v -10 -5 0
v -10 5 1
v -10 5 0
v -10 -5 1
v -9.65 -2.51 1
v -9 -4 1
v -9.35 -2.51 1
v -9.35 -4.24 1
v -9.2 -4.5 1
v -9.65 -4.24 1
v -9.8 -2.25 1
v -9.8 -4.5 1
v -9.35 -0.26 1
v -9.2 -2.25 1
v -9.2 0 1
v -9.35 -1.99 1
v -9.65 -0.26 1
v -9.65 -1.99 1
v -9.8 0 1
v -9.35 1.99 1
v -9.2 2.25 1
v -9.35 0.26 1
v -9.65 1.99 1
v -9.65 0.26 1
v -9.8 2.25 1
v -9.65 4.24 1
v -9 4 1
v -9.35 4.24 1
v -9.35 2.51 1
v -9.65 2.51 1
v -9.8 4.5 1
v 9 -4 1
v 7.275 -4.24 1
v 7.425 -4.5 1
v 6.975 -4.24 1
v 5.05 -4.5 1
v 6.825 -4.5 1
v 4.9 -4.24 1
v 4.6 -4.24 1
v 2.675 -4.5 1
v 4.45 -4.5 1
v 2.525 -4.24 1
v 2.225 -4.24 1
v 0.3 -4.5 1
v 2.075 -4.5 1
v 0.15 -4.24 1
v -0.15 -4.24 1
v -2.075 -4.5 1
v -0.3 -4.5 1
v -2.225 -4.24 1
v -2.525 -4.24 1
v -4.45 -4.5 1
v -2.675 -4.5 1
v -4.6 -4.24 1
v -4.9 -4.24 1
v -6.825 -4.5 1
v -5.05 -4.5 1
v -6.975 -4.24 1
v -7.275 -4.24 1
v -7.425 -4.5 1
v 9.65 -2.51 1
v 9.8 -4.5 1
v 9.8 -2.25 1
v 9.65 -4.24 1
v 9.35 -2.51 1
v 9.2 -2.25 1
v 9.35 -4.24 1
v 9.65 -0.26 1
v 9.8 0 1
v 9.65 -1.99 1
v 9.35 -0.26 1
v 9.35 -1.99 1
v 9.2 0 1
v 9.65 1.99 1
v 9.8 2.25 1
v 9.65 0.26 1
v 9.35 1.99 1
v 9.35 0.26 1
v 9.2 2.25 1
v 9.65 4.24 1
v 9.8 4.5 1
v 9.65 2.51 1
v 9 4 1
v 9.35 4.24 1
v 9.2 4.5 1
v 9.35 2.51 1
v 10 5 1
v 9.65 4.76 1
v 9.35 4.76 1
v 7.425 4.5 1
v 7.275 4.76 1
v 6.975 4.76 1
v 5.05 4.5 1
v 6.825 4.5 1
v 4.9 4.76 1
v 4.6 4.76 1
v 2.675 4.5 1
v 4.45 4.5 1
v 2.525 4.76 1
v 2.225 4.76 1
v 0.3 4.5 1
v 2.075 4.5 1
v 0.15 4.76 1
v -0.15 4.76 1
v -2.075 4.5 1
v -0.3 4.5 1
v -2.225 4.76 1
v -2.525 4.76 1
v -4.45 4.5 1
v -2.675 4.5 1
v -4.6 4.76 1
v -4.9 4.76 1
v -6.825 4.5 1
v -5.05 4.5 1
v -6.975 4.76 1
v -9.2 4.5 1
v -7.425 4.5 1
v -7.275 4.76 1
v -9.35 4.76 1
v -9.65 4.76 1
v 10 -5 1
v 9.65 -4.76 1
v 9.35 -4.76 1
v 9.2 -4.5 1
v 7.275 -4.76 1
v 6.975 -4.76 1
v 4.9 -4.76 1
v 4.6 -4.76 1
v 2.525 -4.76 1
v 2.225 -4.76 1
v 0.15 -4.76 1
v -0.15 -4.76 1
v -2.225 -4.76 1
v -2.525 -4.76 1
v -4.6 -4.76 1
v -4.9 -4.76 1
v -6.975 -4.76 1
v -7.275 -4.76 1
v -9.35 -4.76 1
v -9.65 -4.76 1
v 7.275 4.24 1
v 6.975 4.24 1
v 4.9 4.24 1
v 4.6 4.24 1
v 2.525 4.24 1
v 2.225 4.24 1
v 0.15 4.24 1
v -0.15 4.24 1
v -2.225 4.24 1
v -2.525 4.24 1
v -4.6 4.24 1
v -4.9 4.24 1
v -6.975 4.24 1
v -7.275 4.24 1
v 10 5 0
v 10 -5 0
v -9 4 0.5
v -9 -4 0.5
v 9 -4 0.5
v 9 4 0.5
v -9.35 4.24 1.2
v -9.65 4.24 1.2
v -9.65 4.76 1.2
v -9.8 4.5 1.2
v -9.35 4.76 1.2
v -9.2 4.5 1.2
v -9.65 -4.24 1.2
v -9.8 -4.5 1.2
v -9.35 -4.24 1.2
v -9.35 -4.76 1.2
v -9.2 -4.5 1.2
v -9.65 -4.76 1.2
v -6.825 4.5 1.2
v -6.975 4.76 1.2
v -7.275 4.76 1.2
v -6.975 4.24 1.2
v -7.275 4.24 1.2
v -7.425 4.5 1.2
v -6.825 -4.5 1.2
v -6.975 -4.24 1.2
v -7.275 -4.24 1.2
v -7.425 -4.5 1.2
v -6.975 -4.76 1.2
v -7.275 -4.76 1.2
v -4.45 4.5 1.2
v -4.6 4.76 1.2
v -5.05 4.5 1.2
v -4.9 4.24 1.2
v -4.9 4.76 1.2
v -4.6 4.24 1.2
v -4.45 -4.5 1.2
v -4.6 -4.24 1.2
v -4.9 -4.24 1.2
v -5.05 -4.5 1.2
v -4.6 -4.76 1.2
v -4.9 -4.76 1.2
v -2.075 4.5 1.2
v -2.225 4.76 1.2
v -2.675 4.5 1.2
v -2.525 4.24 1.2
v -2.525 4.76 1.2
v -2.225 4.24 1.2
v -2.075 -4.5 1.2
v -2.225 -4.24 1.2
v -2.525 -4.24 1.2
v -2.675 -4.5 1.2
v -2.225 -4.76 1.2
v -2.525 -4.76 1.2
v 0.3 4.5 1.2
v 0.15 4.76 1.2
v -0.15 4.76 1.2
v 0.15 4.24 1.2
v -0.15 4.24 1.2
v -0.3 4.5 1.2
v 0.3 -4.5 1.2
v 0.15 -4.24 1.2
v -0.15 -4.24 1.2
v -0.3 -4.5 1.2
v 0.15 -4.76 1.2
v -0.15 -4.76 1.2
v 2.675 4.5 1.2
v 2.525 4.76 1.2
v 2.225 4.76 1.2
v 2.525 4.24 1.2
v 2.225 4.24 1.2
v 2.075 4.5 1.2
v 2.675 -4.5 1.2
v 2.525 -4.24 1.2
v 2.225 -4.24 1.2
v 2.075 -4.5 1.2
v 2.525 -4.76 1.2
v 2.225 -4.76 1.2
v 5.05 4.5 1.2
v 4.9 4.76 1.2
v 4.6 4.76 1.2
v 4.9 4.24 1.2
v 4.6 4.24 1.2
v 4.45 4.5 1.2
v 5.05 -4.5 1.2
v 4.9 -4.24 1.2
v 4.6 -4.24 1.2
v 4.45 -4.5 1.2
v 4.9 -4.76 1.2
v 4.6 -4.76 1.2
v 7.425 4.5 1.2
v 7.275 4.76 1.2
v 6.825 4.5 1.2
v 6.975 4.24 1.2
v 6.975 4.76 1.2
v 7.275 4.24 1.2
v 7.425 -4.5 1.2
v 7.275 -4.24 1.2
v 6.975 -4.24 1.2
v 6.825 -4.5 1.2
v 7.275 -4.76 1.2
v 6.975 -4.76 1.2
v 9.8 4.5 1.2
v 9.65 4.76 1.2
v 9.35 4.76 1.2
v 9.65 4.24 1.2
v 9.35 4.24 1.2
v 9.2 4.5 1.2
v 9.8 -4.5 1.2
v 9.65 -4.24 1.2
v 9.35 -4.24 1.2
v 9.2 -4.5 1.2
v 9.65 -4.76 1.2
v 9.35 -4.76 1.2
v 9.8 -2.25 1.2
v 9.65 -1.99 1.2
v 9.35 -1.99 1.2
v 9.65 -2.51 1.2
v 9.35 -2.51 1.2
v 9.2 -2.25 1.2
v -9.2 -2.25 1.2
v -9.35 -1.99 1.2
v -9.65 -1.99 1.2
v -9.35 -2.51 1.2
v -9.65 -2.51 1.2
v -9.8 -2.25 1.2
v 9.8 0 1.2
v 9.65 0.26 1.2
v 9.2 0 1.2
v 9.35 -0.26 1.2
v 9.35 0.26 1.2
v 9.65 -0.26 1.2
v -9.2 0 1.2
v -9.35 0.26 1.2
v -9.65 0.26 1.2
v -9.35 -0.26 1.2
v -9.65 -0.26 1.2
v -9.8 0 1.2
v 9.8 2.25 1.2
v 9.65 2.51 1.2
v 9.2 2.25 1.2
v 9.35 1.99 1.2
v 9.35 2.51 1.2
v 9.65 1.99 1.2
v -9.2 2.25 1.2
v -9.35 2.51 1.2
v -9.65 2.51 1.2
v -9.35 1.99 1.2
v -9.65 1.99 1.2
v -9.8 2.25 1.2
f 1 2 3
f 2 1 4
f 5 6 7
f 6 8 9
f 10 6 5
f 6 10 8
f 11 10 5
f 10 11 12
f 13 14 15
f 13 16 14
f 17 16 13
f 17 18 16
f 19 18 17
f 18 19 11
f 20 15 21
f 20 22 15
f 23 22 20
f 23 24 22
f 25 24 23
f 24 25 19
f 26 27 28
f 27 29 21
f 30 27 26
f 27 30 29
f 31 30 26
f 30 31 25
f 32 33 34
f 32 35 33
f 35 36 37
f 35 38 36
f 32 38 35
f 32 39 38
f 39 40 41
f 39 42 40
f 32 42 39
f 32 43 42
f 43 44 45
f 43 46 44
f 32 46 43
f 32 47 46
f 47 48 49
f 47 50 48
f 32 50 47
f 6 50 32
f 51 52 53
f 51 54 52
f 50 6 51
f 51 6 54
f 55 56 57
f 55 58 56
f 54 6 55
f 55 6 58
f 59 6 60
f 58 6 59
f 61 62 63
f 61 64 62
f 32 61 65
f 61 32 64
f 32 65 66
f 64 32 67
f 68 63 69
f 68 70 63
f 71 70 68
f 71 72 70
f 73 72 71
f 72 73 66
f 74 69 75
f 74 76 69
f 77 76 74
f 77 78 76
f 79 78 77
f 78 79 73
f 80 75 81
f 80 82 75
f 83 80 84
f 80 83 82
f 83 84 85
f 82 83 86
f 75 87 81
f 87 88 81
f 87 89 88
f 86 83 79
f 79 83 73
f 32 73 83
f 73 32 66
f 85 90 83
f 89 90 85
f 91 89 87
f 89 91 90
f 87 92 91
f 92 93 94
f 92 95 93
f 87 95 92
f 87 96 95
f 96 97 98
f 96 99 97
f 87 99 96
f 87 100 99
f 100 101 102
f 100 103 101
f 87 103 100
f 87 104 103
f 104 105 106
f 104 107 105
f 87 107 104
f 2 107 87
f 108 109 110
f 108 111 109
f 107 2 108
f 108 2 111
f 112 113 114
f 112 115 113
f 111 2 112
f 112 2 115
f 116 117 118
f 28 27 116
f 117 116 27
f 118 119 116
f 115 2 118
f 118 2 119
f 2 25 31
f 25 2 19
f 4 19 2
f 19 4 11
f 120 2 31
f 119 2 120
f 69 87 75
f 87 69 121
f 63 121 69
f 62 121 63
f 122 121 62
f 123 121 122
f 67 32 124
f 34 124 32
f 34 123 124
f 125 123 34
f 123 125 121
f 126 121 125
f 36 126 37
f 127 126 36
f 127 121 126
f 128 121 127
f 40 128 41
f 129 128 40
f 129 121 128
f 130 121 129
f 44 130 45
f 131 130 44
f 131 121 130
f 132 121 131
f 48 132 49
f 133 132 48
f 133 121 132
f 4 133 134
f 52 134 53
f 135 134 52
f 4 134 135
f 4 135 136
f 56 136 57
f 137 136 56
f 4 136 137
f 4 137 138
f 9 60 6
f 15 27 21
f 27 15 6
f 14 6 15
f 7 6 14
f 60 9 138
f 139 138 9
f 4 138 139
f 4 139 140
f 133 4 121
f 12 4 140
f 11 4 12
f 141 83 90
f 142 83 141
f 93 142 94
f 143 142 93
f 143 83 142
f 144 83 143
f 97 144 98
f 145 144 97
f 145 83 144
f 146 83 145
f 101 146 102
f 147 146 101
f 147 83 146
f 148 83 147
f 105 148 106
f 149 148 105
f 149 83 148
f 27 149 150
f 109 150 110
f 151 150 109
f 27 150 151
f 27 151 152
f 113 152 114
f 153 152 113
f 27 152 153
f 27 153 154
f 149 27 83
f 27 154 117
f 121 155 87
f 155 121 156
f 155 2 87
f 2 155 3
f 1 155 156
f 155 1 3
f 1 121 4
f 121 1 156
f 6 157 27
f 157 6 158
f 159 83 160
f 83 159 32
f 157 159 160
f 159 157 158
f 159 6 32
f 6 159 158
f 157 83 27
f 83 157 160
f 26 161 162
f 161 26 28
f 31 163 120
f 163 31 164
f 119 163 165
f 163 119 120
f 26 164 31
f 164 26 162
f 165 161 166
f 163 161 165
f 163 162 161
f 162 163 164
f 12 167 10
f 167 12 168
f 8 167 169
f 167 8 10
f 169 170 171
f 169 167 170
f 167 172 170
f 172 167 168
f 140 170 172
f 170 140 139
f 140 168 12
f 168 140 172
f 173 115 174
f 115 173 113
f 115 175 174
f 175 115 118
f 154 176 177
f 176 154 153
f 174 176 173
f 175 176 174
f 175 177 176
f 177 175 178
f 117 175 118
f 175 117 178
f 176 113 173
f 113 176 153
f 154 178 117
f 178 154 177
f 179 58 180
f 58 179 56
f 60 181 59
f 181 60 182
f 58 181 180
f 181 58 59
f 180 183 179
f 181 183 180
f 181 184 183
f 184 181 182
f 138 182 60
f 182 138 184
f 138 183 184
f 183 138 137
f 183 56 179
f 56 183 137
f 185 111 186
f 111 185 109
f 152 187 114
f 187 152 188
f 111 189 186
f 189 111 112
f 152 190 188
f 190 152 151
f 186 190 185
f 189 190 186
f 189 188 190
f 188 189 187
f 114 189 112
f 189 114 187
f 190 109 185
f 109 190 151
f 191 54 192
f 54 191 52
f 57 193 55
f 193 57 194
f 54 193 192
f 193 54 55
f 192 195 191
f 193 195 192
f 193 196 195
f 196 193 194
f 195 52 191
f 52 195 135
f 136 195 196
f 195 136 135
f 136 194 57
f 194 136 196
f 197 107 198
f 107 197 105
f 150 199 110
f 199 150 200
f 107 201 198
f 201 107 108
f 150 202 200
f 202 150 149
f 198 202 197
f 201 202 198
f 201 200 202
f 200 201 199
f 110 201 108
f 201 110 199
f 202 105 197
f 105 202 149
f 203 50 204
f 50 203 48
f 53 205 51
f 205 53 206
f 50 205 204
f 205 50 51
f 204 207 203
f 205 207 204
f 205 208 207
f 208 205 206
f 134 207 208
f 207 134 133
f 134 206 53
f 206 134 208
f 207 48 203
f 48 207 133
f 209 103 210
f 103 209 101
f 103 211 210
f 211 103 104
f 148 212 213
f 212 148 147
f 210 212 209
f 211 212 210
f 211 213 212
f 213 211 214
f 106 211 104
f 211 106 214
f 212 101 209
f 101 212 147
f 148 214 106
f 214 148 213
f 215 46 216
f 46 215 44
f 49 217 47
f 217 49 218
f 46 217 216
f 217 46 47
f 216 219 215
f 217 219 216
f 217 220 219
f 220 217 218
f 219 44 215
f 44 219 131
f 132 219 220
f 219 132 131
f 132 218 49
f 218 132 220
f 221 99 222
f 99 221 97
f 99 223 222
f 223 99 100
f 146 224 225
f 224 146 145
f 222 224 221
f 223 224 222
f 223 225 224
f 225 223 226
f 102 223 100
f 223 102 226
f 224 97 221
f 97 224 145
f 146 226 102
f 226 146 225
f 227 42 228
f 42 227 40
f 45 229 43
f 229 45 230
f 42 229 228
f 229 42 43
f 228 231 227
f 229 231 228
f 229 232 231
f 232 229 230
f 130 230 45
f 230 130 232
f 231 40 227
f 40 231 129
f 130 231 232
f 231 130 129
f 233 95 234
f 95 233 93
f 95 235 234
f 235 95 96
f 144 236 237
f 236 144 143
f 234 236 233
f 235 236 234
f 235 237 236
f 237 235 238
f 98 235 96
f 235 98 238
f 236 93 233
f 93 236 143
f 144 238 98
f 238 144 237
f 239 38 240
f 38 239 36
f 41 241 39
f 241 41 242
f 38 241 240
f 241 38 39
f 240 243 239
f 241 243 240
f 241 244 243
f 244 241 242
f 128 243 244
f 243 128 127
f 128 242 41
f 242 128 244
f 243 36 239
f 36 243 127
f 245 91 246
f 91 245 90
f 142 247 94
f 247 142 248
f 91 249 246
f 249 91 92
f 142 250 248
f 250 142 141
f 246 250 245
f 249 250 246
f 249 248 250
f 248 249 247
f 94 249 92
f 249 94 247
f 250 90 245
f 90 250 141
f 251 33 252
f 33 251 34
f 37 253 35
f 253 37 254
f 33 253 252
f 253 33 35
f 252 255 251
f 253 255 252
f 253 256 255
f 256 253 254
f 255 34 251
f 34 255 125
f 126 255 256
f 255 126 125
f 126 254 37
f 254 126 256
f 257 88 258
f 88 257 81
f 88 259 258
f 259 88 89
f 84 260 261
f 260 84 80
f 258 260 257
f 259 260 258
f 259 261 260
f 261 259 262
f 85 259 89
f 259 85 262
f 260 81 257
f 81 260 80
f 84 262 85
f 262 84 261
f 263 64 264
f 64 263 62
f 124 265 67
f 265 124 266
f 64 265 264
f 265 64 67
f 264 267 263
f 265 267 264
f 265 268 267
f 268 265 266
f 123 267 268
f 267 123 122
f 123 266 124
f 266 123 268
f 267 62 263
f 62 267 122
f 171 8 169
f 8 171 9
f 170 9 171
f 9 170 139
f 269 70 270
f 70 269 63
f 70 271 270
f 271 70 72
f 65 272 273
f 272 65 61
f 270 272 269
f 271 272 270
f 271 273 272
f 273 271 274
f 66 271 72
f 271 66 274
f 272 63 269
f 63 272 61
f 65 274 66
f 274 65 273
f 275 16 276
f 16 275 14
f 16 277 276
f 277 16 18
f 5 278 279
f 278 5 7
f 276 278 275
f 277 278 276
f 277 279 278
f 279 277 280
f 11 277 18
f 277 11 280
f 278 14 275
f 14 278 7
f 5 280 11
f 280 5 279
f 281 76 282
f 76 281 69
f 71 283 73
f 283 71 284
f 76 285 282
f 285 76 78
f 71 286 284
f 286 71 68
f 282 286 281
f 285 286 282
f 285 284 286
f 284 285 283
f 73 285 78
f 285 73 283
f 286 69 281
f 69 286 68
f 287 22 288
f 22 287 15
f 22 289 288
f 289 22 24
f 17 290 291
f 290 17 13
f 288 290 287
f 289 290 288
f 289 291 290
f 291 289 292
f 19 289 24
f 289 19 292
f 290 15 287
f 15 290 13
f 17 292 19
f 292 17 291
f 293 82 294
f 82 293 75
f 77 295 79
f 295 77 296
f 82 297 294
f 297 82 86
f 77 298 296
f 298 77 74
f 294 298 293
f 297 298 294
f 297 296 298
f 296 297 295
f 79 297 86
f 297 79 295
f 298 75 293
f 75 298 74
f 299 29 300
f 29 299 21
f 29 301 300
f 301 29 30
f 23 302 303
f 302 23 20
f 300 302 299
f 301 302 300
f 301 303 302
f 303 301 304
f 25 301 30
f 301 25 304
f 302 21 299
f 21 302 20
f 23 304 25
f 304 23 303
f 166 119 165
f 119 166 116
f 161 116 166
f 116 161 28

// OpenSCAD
DEFAULT_SIZE = [20, 10, 1]; // Height value includes frame height
DEFAULT_FRAME_SIZE = [2, 2, 0.5];

DEFAULT_RIVET_RADIUS = 0.3;
DEFAULT_RIVET_HEIGHT = 0.2;
DEFAULT_RIVET_SIDES = 6;
DEFAULT_NUM_X_RIVETS = 9;
DEFAULT_NUM_Y_RIVETS = 5;

module Rivet(rivetRadius, rivetHeight, rivetSides)
{
    cylinder(r = rivetRadius, h = rivetHeight, $fn = rivetSides);
}

module Plaque(
    size = DEFAULT_SIZE,
    frameSize = DEFAULT_FRAME_SIZE,
    rivetRadius = DEFAULT_RIVET_RADIUS,
    rivetHeight = DEFAULT_RIVET_HEIGHT,
    rivetSides =  DEFAULT_RIVET_SIDES,
    numXRivets = DEFAULT_NUM_X_RIVETS,
    numYRivets = DEFAULT_NUM_Y_RIVETS)
{
    translate([0, 0, size[2] / 2])
    difference()
    {
        // Main body
        cube(size, center = true);

        // Frame
        translate([0, 0, frameSize[2] / 2 + 0.05])
        cube(size - frameSize + [0, 0,  + 0.1], center = true);
    }

    // Rivets - X
    y = size[1] / 2 - frameSize[1] / 4;
    translate([-size[0] / 2 + frameSize[0] / 4, 0, size[2]])
    for (x = [0 : numXRivets - 1])
    {
        xPos = x / (numXRivets - 1) * (size[0] - frameSize[0] / 2);
        translate([xPos,  y, 0]) Rivet(rivetRadius, rivetHeight, rivetSides);
        translate([xPos, -y, 0]) Rivet(rivetRadius, rivetHeight, rivetSides);
    }

    // Rivets - Y
    x = size[0] / 2 - frameSize[0] / 4;
    translate([0, -size[1] / 2 + frameSize[1] / 4, size[2]])
    for (y = [0 : numYRivets - 1])
    {
        yPos = y / (numYRivets - 1) * (size[1] - frameSize[1] / 2);
        translate([ x, yPos, 0]) Rivet(rivetRadius, rivetHeight, rivetSides);
        translate([-x, yPos, 0]) Rivet(rivetRadius, rivetHeight, rivetSides);
    }
}

Plaque();
